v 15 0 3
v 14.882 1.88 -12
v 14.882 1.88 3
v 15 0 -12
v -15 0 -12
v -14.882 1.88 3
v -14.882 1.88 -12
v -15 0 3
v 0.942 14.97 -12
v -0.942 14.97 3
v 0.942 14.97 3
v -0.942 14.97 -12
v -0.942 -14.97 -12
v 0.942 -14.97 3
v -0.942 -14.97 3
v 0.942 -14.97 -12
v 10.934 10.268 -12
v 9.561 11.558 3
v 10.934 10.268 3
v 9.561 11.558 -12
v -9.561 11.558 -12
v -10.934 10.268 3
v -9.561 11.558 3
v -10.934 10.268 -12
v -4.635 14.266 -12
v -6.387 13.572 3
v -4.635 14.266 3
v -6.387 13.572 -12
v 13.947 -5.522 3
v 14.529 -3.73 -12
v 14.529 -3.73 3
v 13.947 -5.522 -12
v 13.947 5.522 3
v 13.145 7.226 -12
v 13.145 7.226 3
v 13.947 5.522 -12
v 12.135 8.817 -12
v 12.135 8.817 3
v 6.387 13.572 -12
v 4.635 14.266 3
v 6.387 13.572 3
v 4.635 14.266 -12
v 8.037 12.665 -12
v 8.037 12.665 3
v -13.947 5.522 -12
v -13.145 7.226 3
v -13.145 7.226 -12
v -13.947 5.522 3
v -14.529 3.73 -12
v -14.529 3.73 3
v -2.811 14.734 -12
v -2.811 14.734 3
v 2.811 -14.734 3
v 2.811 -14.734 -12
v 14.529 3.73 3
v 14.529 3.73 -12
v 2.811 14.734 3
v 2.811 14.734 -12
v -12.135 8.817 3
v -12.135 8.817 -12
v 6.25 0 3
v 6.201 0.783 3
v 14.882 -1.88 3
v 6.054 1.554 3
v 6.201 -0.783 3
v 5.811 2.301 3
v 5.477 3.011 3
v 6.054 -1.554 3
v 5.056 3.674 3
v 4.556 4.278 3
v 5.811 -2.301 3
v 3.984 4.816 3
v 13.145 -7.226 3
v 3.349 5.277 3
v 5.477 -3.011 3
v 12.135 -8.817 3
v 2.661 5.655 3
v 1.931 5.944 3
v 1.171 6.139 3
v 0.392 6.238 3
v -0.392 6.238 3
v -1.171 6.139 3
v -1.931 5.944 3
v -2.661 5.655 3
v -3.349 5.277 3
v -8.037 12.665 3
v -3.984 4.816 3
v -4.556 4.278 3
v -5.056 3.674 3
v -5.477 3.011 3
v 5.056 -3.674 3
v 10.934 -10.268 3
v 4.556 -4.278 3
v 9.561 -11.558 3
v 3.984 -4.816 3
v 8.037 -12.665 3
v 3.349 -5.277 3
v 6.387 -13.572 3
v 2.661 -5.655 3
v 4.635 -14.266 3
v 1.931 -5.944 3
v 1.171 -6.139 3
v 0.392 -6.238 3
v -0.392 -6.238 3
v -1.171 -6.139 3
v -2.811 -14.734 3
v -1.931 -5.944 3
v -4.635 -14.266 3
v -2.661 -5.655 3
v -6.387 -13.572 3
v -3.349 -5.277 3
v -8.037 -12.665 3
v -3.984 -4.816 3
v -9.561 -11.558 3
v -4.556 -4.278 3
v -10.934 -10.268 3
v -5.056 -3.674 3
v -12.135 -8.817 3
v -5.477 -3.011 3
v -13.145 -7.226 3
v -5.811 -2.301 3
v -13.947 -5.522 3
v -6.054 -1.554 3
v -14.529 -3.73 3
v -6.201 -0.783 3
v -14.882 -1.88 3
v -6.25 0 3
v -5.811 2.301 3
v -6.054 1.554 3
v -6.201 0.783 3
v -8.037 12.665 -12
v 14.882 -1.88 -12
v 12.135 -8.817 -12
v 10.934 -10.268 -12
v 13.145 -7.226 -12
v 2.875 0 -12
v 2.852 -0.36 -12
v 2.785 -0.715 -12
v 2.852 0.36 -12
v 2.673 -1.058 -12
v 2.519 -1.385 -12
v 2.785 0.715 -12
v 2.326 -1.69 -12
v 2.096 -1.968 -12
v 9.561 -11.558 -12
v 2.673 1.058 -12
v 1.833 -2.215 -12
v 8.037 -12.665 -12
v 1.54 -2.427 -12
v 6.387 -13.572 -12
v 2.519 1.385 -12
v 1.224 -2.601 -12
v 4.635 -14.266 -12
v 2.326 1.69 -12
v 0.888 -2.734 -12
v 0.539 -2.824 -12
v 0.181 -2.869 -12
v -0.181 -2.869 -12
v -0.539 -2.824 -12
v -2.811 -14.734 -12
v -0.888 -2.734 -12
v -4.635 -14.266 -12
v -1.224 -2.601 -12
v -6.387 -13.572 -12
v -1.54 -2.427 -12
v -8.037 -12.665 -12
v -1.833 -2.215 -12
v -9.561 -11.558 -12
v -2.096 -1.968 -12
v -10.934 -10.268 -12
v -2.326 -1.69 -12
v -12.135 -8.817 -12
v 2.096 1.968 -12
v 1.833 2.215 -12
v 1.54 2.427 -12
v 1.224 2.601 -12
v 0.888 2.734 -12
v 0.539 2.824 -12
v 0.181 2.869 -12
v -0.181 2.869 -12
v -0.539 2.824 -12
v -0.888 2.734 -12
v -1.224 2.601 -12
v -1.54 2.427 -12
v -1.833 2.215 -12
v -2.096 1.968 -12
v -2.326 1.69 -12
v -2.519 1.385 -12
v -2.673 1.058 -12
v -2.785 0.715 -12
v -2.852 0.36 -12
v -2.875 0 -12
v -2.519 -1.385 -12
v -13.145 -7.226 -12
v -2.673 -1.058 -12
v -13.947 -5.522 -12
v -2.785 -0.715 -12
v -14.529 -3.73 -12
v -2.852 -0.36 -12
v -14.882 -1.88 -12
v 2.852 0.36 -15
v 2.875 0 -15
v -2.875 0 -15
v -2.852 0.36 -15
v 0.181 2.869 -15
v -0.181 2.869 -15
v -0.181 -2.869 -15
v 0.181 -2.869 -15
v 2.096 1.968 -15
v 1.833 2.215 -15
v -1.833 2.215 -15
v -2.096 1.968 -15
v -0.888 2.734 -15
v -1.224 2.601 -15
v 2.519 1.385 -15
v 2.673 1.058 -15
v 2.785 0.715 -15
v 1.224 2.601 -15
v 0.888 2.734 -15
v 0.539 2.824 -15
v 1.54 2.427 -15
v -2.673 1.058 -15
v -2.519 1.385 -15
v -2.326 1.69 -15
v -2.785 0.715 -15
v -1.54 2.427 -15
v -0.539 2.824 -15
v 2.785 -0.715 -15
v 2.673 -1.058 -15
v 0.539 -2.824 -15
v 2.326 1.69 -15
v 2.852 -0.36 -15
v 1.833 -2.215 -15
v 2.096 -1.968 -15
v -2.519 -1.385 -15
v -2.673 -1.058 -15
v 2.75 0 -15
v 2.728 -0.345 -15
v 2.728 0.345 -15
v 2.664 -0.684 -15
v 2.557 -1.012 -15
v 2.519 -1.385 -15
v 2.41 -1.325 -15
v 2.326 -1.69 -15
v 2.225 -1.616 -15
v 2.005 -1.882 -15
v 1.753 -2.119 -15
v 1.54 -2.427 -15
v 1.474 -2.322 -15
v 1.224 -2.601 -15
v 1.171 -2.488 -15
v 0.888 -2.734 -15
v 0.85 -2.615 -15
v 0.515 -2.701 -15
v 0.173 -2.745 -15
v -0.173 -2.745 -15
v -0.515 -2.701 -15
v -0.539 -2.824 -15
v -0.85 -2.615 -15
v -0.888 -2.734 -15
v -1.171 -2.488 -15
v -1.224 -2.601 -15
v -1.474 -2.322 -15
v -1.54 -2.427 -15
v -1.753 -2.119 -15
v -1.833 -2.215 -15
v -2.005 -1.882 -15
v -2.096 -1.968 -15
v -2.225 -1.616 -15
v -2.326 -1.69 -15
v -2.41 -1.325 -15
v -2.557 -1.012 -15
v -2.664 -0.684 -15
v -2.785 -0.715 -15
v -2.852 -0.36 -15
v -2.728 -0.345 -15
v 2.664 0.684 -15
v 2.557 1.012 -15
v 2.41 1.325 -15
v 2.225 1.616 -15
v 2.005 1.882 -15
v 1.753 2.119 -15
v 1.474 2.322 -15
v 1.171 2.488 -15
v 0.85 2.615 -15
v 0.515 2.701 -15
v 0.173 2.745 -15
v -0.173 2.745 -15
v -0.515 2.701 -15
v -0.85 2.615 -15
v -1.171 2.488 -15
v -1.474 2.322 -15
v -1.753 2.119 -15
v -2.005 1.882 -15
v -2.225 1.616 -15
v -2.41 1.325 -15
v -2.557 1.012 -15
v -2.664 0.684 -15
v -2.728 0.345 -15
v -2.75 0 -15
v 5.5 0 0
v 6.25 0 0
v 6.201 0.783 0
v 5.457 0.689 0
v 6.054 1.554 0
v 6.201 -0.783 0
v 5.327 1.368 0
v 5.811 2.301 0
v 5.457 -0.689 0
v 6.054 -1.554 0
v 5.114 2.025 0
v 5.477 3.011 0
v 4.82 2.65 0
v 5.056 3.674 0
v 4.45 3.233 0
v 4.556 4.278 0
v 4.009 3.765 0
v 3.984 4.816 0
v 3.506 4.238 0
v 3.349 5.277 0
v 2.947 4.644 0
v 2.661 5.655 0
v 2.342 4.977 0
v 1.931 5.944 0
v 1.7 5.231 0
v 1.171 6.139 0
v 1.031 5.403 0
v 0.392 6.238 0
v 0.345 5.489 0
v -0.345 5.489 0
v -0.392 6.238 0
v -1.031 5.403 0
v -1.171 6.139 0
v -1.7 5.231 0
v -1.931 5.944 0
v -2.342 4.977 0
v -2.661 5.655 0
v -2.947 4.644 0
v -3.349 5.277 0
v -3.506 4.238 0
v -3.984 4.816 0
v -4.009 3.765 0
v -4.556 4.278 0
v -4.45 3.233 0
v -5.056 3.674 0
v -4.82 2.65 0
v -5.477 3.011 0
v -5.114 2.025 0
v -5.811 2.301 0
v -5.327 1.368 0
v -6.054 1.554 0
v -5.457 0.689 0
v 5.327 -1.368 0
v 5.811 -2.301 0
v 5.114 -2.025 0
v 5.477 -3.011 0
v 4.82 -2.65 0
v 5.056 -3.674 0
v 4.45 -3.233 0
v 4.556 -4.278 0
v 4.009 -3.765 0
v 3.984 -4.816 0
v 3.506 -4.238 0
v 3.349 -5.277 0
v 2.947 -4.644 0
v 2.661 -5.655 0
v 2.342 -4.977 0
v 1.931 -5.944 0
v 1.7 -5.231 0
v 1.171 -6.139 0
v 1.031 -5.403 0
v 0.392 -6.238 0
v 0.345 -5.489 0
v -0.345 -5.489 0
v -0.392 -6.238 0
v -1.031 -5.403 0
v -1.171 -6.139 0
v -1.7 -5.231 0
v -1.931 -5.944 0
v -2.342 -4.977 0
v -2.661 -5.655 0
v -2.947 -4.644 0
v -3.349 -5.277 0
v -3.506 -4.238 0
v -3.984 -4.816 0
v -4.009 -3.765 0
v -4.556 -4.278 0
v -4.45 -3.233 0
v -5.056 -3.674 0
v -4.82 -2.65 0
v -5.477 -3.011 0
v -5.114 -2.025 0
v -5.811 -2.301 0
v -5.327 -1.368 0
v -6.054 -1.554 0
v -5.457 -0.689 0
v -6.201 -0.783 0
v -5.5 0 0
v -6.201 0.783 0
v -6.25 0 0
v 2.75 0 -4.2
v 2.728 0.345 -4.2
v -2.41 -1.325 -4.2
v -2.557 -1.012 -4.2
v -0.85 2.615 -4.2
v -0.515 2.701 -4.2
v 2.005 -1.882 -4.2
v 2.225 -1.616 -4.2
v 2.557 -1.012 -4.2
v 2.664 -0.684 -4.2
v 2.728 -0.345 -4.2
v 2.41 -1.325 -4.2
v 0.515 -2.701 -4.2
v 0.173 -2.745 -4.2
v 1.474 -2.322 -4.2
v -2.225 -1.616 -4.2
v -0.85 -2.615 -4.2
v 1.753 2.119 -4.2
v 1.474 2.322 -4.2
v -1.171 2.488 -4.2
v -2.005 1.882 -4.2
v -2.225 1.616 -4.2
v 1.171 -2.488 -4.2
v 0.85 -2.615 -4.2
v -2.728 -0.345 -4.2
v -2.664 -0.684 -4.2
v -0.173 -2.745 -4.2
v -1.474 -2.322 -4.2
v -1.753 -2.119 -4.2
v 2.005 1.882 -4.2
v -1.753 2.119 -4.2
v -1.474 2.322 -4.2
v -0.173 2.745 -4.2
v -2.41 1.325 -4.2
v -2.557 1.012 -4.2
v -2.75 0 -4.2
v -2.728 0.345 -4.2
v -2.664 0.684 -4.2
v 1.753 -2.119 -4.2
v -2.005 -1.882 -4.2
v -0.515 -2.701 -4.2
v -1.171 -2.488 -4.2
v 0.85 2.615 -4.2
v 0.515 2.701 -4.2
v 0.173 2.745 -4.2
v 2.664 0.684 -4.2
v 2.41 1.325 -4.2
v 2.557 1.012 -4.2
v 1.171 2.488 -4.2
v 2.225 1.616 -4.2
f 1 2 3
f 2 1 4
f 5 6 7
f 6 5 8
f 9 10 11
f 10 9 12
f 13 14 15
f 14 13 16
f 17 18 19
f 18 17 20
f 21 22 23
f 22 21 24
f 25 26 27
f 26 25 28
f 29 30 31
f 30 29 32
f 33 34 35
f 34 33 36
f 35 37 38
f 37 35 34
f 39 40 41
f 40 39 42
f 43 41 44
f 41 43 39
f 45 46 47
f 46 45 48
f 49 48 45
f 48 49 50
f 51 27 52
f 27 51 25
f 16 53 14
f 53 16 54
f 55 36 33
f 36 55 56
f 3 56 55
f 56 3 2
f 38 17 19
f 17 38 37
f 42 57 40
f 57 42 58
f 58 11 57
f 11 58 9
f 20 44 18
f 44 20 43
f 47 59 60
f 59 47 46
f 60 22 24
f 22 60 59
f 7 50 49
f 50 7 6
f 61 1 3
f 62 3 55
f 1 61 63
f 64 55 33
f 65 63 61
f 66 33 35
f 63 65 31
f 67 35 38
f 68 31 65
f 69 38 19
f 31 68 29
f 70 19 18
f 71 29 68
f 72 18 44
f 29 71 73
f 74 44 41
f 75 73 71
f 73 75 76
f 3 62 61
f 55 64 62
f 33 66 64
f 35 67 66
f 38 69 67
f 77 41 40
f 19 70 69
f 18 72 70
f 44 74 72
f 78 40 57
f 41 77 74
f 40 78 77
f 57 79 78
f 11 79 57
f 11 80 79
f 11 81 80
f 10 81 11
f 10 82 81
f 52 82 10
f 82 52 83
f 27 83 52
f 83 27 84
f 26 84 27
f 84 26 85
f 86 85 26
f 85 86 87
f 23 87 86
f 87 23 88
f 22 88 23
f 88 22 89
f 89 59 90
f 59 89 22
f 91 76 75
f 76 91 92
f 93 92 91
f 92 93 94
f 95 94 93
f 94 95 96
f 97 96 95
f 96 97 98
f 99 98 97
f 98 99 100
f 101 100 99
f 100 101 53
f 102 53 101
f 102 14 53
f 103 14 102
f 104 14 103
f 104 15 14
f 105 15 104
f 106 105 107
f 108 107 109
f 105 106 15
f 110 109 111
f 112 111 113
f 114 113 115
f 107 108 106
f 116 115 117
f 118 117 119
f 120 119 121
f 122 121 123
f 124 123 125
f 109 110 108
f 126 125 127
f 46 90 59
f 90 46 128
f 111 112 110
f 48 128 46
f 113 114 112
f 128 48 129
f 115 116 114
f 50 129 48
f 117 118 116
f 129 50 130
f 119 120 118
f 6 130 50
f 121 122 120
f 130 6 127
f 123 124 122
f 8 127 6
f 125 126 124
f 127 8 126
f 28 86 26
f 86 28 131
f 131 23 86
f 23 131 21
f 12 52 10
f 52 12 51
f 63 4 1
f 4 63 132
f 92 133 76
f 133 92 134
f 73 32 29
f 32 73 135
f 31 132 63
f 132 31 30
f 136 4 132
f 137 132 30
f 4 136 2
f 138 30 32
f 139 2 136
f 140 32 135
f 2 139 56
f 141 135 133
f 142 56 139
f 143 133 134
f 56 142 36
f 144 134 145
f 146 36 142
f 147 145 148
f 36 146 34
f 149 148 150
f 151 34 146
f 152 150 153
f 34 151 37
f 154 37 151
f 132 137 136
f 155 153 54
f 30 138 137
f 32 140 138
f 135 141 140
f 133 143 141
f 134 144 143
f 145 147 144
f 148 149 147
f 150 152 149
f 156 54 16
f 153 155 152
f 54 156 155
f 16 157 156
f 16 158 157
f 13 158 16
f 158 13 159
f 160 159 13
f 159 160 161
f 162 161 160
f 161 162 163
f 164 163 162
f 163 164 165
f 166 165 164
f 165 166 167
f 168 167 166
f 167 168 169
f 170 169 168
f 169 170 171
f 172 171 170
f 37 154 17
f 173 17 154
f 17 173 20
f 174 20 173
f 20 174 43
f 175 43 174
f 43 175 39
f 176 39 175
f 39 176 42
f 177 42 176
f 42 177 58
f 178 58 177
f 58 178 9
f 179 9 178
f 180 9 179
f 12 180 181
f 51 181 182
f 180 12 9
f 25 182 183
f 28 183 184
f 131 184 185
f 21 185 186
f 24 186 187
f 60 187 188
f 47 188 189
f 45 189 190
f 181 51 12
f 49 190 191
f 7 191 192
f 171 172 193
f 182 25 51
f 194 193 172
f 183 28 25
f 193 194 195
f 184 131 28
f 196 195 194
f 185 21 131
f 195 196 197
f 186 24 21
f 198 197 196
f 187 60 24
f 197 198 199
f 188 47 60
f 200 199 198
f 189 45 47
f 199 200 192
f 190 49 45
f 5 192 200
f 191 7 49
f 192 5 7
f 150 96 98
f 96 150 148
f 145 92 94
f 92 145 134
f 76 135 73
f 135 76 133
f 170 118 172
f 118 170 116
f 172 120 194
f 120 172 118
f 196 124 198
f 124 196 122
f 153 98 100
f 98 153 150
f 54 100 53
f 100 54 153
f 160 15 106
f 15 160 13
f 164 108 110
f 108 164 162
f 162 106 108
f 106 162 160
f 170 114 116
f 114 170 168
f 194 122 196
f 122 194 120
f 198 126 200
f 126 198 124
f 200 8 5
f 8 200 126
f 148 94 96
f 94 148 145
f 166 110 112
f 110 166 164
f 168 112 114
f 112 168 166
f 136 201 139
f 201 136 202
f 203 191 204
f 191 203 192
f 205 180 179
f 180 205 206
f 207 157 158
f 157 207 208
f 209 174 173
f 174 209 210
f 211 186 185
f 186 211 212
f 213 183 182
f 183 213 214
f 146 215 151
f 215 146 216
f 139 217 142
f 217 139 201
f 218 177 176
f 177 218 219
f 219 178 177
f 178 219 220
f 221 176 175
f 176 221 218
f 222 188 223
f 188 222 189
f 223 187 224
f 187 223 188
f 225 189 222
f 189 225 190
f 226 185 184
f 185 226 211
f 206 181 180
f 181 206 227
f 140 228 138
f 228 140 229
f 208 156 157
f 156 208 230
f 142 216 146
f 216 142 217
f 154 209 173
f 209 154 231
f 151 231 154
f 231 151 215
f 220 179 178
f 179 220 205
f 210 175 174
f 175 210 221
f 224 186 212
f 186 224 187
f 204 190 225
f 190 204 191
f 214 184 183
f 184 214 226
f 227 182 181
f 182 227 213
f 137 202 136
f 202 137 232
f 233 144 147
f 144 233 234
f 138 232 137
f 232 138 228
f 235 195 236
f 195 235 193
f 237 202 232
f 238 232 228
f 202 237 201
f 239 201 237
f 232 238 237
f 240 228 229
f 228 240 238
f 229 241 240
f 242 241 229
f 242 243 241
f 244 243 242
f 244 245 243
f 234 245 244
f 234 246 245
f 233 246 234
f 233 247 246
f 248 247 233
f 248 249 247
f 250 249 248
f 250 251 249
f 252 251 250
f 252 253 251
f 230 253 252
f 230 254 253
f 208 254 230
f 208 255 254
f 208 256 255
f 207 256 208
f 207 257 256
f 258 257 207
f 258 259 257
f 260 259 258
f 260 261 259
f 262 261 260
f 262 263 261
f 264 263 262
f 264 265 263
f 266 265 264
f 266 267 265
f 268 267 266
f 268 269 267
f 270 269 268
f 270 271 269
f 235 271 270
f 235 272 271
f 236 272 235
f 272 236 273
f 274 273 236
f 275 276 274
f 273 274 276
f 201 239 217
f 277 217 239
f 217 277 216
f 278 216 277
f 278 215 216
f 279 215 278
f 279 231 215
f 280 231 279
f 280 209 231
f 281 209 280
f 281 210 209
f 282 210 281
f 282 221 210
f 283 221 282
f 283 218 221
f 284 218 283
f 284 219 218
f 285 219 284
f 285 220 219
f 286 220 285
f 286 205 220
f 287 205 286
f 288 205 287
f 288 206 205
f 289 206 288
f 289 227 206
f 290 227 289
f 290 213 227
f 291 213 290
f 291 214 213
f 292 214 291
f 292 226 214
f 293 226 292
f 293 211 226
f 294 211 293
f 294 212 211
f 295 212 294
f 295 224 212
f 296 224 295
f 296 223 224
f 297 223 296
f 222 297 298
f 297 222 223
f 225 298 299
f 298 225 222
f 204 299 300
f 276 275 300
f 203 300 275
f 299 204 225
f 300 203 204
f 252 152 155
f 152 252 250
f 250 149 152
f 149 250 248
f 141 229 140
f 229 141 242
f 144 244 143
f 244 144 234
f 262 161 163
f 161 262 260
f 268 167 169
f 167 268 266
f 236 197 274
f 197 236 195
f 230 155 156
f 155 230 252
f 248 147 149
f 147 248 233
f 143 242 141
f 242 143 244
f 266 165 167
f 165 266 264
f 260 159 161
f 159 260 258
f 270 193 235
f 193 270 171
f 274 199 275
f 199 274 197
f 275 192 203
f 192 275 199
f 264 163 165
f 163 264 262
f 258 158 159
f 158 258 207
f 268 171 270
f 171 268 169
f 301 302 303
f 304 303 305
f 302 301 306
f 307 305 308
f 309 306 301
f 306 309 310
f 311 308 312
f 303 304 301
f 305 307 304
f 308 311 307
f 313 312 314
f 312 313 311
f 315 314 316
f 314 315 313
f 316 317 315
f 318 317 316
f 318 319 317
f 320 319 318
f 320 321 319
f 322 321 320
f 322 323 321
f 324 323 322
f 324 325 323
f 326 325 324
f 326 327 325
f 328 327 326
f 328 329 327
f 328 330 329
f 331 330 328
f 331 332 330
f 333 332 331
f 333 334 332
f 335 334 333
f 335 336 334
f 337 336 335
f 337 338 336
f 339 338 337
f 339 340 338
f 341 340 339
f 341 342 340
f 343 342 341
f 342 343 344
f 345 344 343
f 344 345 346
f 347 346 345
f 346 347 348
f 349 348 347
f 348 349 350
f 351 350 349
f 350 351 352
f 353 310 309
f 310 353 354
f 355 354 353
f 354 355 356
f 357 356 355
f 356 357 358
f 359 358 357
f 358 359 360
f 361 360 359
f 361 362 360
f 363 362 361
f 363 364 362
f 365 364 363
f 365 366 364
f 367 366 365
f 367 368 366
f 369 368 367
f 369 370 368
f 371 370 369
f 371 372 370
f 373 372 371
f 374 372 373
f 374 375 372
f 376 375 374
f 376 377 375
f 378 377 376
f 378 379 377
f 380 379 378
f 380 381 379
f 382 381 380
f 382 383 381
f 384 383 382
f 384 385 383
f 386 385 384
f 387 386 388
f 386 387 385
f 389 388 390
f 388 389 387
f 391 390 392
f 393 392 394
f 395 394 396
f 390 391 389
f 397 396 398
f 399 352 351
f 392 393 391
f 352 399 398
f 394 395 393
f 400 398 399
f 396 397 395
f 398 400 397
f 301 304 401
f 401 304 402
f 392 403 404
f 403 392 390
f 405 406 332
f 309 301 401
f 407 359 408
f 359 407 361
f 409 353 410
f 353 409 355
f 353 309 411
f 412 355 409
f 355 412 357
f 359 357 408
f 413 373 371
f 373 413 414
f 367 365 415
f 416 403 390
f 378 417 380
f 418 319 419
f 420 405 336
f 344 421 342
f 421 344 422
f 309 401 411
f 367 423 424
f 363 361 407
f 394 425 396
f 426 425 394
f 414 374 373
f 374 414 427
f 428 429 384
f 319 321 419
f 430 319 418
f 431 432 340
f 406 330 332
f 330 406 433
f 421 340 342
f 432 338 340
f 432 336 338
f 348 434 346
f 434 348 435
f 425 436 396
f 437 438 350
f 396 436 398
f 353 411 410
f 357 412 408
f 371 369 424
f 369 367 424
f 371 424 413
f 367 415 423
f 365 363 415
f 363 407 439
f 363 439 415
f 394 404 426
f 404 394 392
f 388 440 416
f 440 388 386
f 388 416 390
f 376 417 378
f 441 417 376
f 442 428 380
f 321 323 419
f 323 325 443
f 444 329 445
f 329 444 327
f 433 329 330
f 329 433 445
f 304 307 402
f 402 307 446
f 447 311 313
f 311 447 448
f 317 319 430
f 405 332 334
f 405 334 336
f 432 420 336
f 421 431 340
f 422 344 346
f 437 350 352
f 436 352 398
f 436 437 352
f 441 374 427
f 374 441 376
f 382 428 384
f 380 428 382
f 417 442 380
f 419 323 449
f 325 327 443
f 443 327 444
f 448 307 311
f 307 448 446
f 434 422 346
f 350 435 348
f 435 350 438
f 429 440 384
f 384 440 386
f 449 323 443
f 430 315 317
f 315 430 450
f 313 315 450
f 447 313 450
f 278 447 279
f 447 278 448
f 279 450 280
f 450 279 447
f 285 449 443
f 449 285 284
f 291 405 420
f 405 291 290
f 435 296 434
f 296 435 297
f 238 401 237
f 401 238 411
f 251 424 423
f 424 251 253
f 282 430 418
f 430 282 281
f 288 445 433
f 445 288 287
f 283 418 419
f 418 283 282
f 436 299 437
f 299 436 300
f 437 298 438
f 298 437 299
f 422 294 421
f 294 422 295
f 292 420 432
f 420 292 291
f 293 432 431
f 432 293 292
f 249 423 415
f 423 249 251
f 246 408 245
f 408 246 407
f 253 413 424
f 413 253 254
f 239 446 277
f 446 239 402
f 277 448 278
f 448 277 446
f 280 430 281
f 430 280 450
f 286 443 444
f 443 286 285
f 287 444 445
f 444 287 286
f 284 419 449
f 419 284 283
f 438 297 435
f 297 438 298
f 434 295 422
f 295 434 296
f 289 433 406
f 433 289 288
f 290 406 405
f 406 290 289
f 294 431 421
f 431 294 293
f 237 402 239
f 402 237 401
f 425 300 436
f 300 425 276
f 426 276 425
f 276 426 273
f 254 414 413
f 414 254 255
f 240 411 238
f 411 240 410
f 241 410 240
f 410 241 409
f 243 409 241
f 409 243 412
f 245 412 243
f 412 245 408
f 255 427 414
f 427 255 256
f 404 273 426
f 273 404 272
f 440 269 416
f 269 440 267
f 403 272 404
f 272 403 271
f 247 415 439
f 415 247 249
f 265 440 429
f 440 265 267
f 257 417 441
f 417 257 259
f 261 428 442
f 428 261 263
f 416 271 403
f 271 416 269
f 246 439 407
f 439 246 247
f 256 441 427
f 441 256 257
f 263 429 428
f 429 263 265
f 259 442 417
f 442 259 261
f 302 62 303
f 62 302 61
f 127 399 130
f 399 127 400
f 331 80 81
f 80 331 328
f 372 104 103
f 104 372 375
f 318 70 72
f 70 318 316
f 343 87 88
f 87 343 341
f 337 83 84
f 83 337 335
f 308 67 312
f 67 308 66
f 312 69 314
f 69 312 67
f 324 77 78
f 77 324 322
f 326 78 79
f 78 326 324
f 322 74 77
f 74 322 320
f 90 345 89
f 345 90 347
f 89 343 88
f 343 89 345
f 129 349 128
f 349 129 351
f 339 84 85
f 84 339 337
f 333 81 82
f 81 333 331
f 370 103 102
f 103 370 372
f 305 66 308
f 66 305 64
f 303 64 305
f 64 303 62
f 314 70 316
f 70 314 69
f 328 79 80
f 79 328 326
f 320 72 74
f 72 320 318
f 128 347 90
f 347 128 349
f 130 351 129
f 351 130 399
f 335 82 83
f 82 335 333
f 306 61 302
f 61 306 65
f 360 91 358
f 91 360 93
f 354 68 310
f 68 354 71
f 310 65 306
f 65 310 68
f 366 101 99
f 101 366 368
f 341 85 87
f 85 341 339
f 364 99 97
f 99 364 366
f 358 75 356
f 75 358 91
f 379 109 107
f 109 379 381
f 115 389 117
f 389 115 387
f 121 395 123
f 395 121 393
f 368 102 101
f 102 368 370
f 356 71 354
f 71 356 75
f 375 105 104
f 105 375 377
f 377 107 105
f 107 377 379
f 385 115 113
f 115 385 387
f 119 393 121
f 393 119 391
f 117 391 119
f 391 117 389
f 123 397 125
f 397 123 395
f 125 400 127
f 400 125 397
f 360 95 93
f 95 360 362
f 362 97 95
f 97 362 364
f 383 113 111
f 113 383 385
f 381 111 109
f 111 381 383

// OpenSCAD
$fn = 50;

difference() {
	union() {
		translate(v = [0, 0, -12.0]) {
			cylinder(h = 15, r = 15.0);
		}
		#translate(v = [0, 0, -15.0]) {
			cylinder(h = 15, r = 2.875);
		}
	}
	union() {
		translate(v = [0, 0, 0]) {
			rotate(a = [0, 0, 0]) {
				difference() {
					union() {
						translate(v = [0, 0, -15.0]) {
							cylinder(h = 15, r = 2.25);
						}
						translate(v = [0, 0, -4.2]) {
							cylinder(h = 4.2, r1 = 2.75, r2 = 5.5);
						}
						translate(v = [0, 0, -15.0]) {
							cylinder(h = 15, r = 2.75);
						}
						translate(v = [0, 0, -15.0]) {
							cylinder(h = 15, r = 2.25);
						}
					}
					union();
				}
			}
		}
		#cylinder(h = 3, r = 6.25);
	}
}
